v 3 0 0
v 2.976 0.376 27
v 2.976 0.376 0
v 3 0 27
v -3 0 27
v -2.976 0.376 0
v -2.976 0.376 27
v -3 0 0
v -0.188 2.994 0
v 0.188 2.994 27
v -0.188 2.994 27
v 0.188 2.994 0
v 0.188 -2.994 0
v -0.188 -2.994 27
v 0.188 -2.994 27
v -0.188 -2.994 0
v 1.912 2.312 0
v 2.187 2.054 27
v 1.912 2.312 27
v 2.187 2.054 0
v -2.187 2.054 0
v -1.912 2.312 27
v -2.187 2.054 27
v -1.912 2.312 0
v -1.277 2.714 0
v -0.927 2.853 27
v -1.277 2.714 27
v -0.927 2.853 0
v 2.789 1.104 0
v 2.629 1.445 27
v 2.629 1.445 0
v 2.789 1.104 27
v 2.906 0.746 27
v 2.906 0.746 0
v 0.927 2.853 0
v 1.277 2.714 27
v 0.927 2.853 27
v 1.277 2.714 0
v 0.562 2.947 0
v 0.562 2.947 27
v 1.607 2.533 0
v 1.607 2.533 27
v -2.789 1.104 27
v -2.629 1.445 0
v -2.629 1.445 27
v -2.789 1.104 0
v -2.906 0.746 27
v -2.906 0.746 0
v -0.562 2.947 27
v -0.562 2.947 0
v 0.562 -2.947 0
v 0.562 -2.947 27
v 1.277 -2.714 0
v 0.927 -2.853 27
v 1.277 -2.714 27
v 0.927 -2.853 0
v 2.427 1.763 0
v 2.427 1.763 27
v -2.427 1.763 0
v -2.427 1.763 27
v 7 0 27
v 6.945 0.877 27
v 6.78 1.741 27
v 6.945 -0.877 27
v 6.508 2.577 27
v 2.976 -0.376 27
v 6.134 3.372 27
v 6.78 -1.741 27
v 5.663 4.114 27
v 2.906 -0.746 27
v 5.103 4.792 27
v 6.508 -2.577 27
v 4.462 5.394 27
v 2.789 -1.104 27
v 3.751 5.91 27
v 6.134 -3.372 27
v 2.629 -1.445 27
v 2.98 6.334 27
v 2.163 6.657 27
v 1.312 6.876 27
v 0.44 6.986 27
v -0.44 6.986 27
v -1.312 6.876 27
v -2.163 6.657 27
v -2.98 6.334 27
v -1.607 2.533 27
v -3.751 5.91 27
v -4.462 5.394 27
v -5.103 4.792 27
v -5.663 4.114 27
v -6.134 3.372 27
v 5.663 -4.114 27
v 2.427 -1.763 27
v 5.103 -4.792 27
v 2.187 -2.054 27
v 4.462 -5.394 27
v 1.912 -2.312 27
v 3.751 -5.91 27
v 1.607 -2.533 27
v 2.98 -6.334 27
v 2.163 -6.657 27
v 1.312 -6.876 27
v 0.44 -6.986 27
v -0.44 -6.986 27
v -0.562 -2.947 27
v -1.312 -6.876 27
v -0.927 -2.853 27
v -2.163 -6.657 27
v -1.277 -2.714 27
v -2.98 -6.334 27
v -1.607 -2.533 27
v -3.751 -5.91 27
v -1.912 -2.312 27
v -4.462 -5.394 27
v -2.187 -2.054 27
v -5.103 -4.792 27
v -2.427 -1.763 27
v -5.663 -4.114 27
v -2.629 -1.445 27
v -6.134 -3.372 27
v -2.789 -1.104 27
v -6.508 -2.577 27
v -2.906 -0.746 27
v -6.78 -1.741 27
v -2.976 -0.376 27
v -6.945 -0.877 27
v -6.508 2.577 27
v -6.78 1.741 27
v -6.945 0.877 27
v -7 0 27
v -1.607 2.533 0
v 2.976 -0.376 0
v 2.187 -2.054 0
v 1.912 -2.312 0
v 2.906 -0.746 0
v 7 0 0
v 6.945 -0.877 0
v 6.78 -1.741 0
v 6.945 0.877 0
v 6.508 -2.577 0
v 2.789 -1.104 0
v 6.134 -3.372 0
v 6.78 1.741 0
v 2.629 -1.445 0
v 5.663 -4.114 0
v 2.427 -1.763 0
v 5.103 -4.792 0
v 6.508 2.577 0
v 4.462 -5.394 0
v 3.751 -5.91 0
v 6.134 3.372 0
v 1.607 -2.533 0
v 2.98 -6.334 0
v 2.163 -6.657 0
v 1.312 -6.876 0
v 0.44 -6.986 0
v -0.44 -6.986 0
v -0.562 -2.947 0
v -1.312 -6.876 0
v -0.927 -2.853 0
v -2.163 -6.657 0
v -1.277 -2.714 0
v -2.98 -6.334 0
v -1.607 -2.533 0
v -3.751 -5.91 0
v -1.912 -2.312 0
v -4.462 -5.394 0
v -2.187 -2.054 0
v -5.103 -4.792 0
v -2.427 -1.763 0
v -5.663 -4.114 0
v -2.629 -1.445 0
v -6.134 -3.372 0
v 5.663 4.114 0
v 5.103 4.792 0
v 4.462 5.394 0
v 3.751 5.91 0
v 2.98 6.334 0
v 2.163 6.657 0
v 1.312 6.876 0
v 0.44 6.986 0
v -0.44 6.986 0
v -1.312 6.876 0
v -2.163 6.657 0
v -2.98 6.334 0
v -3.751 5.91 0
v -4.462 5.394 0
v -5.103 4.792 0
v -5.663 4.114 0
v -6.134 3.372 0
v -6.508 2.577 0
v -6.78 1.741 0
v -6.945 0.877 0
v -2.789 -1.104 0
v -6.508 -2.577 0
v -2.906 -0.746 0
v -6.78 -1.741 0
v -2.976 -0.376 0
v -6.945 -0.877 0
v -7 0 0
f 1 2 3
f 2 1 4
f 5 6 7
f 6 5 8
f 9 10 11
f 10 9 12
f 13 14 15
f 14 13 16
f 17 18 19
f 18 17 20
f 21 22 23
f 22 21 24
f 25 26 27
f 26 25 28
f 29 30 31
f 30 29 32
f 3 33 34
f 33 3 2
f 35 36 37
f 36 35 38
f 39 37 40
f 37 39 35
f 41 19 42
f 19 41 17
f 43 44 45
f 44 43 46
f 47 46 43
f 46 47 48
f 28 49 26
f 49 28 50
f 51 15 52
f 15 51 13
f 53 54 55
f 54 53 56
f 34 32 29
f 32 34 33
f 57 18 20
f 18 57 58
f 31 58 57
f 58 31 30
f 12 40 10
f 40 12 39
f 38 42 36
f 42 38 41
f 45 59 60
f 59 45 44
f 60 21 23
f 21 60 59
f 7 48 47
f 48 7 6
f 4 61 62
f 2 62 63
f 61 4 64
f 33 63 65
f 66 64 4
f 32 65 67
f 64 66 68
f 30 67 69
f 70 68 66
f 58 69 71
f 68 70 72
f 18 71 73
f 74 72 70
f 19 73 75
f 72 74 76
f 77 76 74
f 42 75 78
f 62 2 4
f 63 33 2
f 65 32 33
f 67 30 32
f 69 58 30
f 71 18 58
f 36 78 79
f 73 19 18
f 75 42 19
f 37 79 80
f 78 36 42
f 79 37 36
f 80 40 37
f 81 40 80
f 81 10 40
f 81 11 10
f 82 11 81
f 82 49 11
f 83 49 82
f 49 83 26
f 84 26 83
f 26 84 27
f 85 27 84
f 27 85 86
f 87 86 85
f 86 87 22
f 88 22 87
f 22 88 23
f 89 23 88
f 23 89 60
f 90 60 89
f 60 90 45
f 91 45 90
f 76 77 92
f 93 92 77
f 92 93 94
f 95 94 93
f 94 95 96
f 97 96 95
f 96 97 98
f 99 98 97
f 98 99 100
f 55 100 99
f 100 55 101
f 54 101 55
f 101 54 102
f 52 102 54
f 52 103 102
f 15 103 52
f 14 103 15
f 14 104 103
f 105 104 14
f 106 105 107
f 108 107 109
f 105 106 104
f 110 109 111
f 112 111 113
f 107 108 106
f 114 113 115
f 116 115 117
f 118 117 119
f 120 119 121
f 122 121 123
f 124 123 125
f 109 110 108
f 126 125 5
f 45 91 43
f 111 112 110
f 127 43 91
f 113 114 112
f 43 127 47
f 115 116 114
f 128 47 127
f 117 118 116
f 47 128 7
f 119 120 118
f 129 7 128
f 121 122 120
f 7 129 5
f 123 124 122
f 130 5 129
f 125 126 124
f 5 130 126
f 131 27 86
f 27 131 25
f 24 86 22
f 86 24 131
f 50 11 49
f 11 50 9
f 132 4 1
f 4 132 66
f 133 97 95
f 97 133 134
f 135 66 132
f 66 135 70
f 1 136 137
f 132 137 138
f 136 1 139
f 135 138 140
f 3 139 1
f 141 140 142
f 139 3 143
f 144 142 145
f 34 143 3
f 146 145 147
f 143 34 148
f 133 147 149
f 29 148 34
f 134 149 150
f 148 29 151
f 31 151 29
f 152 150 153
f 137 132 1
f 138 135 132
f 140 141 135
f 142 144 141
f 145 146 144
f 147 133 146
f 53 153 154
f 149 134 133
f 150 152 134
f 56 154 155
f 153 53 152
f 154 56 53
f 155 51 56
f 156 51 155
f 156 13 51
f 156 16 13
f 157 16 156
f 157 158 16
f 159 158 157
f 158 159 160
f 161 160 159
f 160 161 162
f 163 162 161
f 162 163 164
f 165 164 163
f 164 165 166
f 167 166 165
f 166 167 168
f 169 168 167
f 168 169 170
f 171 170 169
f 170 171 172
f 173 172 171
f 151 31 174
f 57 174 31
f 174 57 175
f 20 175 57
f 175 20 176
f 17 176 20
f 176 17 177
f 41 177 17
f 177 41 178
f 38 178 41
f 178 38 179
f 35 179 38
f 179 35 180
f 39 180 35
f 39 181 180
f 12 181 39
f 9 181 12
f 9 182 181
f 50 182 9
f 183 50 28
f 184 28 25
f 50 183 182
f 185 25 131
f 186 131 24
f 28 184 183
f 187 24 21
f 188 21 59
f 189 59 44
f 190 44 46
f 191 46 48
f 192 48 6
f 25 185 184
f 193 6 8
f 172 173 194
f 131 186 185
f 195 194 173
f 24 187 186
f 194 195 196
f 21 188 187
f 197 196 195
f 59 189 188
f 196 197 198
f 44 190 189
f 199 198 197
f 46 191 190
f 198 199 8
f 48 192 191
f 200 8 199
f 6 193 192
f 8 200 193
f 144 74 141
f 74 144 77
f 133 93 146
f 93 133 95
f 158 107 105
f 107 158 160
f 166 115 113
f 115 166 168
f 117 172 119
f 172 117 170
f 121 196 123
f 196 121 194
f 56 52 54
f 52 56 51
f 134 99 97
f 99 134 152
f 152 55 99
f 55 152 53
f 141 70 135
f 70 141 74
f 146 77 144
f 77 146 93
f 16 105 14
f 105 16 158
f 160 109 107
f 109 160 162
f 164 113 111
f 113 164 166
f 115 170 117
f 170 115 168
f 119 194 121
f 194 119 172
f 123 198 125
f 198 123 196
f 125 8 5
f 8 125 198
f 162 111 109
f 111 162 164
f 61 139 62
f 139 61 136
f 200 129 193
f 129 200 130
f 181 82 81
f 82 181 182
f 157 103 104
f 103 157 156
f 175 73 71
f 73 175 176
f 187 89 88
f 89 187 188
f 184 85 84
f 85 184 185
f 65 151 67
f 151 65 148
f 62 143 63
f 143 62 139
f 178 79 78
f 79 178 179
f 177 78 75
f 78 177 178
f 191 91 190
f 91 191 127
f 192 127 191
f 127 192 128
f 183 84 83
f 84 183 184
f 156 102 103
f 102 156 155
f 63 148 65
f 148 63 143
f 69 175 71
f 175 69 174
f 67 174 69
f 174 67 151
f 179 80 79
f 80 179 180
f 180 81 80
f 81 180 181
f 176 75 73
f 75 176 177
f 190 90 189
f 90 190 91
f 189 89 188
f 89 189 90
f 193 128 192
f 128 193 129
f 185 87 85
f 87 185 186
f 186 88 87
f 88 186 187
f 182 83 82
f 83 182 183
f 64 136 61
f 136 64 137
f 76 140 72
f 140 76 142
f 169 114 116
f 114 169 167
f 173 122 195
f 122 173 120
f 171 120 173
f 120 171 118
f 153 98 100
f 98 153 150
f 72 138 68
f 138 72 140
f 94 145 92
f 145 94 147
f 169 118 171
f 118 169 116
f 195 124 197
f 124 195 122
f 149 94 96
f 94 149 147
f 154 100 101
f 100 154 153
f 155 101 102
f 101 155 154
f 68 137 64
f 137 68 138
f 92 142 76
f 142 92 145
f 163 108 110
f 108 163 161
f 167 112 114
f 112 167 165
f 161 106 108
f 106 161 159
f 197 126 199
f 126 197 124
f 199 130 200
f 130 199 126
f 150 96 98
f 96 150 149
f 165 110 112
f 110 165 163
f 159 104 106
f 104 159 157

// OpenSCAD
$fn = 50;


difference() {
	union() {
		cylinder(h = 27, r = 7.0000000000);
	}
	union() {
		cylinder(h = 27, r = 3.0000000000);
		cylinder(h = 27, r = 1.5000000000);
		cylinder(h = 27, r = 1.5000000000);
		cylinder(h = 27, r = 1.5000000000);
	}
}
